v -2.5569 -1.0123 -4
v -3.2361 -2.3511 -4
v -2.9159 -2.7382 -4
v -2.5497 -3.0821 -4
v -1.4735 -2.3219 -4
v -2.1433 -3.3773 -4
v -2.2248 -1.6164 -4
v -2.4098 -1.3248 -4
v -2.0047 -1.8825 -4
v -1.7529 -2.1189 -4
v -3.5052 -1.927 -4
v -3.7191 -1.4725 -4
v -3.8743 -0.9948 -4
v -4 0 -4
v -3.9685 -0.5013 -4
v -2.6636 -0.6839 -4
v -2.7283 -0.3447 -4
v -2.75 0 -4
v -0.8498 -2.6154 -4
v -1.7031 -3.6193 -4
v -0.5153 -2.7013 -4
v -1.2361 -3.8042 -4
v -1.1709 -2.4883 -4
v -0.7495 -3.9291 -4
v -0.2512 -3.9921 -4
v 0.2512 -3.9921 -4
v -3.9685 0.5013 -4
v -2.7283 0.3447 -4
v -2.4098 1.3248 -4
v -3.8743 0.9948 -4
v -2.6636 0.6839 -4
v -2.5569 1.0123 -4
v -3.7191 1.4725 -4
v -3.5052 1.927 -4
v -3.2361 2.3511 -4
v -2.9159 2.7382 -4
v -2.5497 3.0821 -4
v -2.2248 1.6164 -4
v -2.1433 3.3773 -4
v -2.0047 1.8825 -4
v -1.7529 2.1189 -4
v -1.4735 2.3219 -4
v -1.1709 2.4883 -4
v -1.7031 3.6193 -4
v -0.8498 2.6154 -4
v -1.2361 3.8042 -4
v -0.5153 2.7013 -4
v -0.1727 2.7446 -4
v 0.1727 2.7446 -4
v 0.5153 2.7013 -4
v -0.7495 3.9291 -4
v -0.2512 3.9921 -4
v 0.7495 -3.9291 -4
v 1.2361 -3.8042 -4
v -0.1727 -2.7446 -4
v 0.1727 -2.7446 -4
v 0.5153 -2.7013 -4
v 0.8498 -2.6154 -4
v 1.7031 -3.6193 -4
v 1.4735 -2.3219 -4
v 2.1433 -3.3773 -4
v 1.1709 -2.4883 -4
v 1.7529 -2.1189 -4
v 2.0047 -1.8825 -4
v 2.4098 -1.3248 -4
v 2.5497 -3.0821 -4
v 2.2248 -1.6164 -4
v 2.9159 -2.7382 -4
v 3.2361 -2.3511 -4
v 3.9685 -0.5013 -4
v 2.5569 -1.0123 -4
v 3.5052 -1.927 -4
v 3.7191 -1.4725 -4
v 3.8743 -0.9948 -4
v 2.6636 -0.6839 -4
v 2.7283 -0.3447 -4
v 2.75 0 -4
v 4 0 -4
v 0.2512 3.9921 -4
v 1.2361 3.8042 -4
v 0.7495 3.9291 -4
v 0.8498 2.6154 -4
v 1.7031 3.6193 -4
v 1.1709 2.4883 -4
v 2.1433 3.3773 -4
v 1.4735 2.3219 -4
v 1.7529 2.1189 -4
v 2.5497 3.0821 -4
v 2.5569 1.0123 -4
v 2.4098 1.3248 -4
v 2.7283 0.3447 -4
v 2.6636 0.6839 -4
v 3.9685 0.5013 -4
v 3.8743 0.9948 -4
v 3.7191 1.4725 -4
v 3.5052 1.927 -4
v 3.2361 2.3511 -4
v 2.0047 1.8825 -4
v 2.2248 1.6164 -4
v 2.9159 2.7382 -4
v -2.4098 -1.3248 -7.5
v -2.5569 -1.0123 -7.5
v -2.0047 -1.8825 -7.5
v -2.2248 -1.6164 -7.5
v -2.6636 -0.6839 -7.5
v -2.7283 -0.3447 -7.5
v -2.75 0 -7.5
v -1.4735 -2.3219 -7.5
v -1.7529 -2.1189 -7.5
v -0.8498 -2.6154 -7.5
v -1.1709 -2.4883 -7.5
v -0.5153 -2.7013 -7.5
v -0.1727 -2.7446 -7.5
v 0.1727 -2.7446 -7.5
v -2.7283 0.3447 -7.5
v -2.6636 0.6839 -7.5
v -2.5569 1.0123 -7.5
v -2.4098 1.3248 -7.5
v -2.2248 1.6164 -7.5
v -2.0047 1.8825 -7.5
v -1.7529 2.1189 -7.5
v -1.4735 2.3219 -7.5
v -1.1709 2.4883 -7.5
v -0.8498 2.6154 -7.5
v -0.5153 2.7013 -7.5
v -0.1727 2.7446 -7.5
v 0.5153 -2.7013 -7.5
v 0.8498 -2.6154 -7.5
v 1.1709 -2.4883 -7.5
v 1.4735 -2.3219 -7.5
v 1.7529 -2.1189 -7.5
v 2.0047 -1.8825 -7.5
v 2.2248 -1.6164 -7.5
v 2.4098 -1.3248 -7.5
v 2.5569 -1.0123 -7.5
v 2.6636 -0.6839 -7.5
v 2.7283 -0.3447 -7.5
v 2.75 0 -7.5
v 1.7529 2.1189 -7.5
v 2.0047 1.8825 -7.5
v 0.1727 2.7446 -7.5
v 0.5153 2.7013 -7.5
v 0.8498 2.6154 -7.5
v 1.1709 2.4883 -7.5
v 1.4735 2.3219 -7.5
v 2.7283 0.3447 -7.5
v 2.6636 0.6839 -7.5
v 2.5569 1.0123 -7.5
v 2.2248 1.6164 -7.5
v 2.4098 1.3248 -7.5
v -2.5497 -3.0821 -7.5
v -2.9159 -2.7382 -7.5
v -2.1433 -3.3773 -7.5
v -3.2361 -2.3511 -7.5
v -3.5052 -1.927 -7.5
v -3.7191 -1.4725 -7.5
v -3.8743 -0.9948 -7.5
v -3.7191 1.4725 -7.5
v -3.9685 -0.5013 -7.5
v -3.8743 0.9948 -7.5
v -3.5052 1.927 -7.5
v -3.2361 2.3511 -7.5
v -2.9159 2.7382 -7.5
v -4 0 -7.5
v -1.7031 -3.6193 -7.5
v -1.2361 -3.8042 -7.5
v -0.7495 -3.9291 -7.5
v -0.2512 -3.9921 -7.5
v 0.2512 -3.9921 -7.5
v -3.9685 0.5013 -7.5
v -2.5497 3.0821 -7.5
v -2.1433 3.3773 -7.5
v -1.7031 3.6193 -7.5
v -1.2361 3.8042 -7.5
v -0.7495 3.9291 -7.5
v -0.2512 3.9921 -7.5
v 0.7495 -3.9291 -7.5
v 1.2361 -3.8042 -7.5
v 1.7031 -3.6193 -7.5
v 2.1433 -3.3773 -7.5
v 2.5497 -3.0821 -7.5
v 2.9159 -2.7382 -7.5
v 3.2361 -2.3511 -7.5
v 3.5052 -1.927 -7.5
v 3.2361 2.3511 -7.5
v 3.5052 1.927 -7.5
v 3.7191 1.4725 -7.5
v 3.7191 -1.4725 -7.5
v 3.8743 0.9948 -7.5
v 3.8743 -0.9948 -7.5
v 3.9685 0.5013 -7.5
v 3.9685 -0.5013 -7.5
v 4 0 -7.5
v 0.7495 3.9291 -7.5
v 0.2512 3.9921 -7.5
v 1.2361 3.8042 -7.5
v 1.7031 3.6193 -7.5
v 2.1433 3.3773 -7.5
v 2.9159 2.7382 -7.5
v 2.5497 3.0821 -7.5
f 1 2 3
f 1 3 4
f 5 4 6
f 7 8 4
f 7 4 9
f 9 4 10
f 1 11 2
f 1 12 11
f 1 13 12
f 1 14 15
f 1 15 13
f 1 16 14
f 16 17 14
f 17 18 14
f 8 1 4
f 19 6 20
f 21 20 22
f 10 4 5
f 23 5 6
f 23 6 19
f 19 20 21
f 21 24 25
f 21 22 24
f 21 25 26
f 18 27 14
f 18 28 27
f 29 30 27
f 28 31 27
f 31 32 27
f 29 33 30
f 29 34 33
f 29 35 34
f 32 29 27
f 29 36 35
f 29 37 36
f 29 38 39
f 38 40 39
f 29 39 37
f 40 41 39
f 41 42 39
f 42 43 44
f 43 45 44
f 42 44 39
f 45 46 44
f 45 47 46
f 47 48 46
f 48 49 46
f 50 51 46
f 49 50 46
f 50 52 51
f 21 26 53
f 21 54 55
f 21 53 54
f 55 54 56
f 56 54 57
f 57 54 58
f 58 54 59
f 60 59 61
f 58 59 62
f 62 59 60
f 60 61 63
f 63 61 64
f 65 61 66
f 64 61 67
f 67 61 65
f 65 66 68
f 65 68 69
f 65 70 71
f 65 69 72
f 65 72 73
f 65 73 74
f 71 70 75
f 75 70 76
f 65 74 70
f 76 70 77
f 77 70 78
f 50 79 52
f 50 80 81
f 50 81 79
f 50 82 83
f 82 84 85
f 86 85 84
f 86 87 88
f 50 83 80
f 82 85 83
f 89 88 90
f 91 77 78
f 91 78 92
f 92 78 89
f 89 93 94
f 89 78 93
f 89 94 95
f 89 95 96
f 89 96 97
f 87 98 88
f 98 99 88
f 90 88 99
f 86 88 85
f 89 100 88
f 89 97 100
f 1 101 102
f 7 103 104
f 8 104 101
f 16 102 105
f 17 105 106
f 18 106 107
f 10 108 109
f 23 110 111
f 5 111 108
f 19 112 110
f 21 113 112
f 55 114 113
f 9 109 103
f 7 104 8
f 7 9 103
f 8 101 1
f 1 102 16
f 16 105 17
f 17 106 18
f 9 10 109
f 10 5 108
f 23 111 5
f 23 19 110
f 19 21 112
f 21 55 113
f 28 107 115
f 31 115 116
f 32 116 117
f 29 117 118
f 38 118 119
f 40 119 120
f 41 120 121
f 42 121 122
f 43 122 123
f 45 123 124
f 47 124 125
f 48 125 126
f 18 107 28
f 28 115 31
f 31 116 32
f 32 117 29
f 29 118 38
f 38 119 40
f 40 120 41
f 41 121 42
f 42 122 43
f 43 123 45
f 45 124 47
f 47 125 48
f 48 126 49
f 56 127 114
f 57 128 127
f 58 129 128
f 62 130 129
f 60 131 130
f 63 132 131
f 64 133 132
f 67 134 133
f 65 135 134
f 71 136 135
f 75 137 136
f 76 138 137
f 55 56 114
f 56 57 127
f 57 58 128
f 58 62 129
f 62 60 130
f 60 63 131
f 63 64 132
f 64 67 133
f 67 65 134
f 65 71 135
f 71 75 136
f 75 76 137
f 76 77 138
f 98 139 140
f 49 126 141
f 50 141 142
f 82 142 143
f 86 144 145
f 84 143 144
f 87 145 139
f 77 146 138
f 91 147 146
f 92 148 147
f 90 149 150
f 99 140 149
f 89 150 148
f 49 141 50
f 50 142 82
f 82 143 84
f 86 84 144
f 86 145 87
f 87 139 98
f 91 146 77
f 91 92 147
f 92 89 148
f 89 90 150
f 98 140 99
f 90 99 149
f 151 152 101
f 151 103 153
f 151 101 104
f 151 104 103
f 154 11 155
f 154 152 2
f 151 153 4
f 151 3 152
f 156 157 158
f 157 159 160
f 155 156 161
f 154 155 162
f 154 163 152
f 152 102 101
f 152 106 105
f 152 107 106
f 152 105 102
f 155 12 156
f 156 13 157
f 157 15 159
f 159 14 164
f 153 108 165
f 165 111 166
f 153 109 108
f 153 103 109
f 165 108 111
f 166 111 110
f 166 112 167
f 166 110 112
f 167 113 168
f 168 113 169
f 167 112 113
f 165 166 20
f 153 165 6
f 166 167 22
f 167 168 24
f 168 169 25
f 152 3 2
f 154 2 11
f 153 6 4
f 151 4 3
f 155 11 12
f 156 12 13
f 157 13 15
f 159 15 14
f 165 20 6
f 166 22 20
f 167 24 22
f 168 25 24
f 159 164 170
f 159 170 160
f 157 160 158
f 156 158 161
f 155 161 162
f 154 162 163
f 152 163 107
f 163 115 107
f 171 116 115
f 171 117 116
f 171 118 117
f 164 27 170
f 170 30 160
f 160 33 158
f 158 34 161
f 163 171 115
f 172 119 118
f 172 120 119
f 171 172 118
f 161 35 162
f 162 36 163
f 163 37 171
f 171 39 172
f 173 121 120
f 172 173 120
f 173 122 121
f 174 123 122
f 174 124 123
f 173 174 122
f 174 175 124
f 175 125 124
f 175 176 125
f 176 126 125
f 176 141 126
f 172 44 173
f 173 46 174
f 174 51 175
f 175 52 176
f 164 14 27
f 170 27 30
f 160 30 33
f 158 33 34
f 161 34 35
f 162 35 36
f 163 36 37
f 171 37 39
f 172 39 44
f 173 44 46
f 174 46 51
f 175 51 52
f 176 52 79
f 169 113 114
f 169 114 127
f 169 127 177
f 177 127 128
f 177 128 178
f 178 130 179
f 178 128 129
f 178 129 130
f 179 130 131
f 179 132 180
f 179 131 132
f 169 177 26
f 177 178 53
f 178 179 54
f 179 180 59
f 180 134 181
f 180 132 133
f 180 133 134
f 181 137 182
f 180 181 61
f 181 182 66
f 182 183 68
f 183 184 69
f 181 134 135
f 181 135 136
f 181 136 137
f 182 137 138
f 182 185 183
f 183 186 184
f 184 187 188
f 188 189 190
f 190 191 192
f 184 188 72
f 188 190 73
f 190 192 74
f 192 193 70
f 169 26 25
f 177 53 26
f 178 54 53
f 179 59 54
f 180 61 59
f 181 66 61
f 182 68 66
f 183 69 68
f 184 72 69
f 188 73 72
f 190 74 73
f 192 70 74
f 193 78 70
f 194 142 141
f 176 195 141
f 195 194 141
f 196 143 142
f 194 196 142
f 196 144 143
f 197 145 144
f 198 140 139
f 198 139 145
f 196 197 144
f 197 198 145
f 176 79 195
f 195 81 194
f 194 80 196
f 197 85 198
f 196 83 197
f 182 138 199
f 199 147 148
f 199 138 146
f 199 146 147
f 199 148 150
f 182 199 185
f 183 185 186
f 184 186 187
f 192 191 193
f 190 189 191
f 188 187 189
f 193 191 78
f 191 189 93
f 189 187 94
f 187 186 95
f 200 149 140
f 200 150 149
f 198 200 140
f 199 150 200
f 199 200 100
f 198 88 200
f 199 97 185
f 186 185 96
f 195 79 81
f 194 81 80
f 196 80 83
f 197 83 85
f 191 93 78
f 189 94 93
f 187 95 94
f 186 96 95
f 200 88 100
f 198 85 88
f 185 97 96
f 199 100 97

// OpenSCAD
$fn = 50;

difference() {
	union() {
		translate(v = [0, 0, -7.5]) {
			cylinder(h = 10.5, r = 4.0);
		}
	}
	union() {
		translate(v = [0, 0, 0]) {
			rotate(a = [0, 0, 0]) {
				difference() {
					union() {
						translate(v = [0, 0, -4]) {
							linear_extrude(height = 4) {
								polygon(points = [[4.8468, 0.0], [2.4234000000000004, 4.197451927062417], [-2.423399999999999, 4.197451927062417], [-4.8468, 5.935618106107392e-16], [-2.423400000000002, -4.197451927062416], [2.423399999999997, -4.197451927062419]]);
							}
						}
					}
					union();
				}
			}
		}
		#cylinder(h = 3, r = 6.25);
		#translate(v = [0, 0, -100.0]) {
			cylinder(h = 200, r = 2.75);
		}
	}
}
